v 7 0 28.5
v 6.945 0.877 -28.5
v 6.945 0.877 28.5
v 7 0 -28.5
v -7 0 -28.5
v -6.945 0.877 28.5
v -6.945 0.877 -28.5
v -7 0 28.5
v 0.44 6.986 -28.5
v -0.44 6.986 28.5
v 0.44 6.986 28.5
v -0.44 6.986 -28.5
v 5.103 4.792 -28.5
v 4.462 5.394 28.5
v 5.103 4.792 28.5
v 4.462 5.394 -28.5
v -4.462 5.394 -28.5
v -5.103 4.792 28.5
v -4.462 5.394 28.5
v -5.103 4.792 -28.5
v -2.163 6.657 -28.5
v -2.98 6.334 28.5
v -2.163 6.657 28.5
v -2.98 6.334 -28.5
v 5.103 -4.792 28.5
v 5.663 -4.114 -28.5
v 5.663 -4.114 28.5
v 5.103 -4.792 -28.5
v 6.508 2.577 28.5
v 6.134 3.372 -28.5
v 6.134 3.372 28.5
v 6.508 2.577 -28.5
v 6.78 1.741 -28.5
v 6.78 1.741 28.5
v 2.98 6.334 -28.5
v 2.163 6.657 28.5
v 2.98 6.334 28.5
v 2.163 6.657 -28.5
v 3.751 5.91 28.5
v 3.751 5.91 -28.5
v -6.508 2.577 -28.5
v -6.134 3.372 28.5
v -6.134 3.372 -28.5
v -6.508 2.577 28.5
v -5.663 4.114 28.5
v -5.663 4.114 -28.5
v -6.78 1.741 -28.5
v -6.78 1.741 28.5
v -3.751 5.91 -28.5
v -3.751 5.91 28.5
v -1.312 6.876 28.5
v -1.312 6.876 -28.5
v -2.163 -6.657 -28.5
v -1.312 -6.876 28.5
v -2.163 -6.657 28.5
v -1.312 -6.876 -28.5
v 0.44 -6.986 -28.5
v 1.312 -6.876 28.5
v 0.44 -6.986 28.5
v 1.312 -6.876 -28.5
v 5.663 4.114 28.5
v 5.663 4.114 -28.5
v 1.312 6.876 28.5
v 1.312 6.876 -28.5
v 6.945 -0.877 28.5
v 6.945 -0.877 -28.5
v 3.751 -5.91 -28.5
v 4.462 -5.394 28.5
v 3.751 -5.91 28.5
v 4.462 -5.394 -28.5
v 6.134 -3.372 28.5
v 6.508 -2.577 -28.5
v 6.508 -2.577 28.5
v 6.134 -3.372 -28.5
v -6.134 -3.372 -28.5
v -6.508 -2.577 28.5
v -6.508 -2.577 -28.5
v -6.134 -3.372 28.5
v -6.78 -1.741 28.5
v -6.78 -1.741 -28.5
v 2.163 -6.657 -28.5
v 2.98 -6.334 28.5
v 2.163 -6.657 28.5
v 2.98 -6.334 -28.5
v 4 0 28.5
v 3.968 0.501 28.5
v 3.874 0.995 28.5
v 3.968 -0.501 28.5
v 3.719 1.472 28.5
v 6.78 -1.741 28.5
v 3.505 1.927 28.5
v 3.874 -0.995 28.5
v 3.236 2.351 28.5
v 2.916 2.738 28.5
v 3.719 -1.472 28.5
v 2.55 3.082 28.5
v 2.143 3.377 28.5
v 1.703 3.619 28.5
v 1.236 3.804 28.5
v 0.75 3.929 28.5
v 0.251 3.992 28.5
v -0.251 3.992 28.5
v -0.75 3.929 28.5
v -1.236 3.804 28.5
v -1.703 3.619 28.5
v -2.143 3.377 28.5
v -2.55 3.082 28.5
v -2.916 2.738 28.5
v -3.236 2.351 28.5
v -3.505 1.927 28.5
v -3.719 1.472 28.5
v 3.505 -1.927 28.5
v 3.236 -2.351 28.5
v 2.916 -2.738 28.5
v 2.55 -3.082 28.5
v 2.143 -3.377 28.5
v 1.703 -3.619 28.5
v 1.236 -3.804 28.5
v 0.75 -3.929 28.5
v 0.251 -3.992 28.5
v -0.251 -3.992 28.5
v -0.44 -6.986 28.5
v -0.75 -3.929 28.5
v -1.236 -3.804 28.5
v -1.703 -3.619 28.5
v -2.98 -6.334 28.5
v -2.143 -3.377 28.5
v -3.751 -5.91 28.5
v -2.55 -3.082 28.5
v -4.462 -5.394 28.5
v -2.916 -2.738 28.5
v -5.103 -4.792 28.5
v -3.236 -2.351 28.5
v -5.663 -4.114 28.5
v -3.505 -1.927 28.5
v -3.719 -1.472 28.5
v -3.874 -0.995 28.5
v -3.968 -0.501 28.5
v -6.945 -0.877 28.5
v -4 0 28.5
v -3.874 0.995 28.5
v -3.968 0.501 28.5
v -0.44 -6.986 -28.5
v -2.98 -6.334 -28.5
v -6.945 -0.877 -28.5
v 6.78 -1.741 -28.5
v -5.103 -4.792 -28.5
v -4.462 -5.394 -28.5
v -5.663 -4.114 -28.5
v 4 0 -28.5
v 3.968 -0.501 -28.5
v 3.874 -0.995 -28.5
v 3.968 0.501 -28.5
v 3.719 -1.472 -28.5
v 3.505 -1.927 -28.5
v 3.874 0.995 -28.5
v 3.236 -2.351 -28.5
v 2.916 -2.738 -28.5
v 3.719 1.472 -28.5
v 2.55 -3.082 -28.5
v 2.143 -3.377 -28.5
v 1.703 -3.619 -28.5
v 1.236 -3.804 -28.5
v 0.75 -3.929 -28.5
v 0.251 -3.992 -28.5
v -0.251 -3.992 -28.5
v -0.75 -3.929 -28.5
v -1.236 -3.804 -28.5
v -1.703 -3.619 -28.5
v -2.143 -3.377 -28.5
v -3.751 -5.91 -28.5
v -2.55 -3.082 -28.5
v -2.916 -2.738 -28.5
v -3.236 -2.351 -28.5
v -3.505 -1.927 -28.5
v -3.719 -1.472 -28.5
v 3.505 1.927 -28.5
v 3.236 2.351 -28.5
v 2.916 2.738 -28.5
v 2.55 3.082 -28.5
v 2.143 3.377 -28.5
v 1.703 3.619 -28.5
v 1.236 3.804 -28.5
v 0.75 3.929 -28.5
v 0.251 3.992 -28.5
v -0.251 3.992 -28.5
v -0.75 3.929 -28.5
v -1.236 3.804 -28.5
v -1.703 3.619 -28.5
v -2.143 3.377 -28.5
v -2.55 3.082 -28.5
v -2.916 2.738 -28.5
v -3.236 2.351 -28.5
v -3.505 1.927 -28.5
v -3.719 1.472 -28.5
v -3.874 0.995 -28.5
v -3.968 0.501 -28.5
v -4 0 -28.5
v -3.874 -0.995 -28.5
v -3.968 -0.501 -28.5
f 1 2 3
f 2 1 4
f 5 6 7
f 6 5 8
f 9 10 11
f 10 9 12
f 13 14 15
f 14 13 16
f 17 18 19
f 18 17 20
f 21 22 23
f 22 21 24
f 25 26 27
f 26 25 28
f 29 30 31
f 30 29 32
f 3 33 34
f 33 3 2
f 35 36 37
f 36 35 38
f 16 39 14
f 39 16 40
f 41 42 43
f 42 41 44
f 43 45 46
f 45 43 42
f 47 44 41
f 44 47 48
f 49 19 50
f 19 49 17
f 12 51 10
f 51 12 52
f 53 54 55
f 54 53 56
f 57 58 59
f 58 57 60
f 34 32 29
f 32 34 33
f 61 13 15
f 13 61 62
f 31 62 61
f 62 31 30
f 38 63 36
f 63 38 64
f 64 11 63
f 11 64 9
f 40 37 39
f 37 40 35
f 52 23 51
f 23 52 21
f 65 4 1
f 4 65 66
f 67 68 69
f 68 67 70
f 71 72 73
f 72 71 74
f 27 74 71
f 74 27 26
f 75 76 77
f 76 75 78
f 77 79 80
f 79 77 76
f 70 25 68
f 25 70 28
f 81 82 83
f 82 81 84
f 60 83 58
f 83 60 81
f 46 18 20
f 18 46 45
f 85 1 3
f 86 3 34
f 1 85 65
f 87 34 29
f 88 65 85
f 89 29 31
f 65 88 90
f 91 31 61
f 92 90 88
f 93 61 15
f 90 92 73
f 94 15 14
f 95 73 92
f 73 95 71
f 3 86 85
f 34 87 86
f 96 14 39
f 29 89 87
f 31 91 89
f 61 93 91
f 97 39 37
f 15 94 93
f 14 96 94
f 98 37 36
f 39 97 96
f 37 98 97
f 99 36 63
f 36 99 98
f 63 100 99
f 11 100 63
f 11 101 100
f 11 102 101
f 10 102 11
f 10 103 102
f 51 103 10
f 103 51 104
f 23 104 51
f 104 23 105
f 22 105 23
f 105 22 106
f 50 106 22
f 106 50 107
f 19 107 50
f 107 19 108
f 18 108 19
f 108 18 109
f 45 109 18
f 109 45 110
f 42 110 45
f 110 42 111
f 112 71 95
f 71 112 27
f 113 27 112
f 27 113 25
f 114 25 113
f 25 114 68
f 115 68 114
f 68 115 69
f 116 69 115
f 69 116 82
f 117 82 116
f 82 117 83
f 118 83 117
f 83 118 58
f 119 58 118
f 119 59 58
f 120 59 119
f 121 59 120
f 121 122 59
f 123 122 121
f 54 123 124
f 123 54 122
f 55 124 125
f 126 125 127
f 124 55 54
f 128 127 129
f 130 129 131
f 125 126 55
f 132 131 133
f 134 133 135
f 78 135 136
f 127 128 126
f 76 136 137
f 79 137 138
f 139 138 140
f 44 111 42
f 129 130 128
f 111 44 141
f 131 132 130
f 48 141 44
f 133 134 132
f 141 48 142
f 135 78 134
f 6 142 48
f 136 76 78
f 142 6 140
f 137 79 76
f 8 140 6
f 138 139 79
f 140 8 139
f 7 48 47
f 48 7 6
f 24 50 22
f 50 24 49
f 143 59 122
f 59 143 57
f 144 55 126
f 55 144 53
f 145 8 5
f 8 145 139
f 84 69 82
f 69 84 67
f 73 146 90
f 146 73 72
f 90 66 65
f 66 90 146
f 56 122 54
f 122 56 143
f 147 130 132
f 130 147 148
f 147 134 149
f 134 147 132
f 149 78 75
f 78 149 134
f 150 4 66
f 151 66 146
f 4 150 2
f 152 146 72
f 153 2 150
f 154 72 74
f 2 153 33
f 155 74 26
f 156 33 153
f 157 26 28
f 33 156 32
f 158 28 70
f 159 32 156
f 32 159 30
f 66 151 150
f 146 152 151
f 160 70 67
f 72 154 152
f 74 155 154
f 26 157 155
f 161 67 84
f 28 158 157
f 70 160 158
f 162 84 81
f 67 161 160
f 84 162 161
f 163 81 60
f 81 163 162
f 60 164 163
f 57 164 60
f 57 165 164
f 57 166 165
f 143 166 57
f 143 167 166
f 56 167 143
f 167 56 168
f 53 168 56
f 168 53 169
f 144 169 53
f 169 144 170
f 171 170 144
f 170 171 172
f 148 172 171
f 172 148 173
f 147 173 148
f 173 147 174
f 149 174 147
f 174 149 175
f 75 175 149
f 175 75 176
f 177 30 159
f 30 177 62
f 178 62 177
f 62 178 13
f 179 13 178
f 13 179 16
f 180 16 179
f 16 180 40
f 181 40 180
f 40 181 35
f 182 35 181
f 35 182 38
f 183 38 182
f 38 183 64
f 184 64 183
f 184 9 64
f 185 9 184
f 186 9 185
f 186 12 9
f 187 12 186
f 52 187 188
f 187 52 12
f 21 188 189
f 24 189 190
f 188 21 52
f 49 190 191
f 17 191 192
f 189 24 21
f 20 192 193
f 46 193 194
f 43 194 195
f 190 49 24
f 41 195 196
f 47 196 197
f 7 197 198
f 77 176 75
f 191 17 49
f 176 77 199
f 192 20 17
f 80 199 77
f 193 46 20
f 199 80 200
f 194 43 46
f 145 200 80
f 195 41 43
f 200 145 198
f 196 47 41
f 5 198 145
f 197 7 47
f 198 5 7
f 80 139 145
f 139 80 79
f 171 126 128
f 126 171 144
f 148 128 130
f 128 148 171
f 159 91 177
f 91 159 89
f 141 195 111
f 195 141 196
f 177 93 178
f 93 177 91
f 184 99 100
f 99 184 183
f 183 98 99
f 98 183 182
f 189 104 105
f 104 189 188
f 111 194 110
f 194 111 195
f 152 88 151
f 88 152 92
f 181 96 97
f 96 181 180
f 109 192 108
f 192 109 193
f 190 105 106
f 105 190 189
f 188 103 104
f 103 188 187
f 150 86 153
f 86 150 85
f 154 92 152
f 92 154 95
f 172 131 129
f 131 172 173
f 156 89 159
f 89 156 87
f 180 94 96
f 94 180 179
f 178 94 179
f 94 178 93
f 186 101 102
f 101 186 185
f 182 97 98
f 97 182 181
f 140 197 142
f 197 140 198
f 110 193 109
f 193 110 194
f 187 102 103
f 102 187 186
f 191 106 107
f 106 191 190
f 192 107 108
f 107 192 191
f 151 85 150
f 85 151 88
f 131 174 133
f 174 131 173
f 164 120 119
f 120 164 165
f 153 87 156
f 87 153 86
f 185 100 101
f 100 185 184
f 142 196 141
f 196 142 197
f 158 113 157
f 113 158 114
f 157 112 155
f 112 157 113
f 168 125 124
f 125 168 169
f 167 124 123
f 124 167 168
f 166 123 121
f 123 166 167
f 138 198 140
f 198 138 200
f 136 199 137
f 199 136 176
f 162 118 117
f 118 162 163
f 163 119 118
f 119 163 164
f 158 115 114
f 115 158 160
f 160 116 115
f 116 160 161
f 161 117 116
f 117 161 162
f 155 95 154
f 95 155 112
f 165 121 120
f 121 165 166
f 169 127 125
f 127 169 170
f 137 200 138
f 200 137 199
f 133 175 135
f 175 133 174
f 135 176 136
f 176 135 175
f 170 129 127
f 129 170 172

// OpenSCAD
$fn = 50;


difference() {
	union() {
		translate(v = [0, 0, -28.5000000000]) {
			cylinder(h = 57, r = 7.0000000000);
		}
	}
	union() {
		translate(v = [0, 0, -100.0000000000]) {
			cylinder(h = 200, r = 4.0000000000);
		}
	}
}
